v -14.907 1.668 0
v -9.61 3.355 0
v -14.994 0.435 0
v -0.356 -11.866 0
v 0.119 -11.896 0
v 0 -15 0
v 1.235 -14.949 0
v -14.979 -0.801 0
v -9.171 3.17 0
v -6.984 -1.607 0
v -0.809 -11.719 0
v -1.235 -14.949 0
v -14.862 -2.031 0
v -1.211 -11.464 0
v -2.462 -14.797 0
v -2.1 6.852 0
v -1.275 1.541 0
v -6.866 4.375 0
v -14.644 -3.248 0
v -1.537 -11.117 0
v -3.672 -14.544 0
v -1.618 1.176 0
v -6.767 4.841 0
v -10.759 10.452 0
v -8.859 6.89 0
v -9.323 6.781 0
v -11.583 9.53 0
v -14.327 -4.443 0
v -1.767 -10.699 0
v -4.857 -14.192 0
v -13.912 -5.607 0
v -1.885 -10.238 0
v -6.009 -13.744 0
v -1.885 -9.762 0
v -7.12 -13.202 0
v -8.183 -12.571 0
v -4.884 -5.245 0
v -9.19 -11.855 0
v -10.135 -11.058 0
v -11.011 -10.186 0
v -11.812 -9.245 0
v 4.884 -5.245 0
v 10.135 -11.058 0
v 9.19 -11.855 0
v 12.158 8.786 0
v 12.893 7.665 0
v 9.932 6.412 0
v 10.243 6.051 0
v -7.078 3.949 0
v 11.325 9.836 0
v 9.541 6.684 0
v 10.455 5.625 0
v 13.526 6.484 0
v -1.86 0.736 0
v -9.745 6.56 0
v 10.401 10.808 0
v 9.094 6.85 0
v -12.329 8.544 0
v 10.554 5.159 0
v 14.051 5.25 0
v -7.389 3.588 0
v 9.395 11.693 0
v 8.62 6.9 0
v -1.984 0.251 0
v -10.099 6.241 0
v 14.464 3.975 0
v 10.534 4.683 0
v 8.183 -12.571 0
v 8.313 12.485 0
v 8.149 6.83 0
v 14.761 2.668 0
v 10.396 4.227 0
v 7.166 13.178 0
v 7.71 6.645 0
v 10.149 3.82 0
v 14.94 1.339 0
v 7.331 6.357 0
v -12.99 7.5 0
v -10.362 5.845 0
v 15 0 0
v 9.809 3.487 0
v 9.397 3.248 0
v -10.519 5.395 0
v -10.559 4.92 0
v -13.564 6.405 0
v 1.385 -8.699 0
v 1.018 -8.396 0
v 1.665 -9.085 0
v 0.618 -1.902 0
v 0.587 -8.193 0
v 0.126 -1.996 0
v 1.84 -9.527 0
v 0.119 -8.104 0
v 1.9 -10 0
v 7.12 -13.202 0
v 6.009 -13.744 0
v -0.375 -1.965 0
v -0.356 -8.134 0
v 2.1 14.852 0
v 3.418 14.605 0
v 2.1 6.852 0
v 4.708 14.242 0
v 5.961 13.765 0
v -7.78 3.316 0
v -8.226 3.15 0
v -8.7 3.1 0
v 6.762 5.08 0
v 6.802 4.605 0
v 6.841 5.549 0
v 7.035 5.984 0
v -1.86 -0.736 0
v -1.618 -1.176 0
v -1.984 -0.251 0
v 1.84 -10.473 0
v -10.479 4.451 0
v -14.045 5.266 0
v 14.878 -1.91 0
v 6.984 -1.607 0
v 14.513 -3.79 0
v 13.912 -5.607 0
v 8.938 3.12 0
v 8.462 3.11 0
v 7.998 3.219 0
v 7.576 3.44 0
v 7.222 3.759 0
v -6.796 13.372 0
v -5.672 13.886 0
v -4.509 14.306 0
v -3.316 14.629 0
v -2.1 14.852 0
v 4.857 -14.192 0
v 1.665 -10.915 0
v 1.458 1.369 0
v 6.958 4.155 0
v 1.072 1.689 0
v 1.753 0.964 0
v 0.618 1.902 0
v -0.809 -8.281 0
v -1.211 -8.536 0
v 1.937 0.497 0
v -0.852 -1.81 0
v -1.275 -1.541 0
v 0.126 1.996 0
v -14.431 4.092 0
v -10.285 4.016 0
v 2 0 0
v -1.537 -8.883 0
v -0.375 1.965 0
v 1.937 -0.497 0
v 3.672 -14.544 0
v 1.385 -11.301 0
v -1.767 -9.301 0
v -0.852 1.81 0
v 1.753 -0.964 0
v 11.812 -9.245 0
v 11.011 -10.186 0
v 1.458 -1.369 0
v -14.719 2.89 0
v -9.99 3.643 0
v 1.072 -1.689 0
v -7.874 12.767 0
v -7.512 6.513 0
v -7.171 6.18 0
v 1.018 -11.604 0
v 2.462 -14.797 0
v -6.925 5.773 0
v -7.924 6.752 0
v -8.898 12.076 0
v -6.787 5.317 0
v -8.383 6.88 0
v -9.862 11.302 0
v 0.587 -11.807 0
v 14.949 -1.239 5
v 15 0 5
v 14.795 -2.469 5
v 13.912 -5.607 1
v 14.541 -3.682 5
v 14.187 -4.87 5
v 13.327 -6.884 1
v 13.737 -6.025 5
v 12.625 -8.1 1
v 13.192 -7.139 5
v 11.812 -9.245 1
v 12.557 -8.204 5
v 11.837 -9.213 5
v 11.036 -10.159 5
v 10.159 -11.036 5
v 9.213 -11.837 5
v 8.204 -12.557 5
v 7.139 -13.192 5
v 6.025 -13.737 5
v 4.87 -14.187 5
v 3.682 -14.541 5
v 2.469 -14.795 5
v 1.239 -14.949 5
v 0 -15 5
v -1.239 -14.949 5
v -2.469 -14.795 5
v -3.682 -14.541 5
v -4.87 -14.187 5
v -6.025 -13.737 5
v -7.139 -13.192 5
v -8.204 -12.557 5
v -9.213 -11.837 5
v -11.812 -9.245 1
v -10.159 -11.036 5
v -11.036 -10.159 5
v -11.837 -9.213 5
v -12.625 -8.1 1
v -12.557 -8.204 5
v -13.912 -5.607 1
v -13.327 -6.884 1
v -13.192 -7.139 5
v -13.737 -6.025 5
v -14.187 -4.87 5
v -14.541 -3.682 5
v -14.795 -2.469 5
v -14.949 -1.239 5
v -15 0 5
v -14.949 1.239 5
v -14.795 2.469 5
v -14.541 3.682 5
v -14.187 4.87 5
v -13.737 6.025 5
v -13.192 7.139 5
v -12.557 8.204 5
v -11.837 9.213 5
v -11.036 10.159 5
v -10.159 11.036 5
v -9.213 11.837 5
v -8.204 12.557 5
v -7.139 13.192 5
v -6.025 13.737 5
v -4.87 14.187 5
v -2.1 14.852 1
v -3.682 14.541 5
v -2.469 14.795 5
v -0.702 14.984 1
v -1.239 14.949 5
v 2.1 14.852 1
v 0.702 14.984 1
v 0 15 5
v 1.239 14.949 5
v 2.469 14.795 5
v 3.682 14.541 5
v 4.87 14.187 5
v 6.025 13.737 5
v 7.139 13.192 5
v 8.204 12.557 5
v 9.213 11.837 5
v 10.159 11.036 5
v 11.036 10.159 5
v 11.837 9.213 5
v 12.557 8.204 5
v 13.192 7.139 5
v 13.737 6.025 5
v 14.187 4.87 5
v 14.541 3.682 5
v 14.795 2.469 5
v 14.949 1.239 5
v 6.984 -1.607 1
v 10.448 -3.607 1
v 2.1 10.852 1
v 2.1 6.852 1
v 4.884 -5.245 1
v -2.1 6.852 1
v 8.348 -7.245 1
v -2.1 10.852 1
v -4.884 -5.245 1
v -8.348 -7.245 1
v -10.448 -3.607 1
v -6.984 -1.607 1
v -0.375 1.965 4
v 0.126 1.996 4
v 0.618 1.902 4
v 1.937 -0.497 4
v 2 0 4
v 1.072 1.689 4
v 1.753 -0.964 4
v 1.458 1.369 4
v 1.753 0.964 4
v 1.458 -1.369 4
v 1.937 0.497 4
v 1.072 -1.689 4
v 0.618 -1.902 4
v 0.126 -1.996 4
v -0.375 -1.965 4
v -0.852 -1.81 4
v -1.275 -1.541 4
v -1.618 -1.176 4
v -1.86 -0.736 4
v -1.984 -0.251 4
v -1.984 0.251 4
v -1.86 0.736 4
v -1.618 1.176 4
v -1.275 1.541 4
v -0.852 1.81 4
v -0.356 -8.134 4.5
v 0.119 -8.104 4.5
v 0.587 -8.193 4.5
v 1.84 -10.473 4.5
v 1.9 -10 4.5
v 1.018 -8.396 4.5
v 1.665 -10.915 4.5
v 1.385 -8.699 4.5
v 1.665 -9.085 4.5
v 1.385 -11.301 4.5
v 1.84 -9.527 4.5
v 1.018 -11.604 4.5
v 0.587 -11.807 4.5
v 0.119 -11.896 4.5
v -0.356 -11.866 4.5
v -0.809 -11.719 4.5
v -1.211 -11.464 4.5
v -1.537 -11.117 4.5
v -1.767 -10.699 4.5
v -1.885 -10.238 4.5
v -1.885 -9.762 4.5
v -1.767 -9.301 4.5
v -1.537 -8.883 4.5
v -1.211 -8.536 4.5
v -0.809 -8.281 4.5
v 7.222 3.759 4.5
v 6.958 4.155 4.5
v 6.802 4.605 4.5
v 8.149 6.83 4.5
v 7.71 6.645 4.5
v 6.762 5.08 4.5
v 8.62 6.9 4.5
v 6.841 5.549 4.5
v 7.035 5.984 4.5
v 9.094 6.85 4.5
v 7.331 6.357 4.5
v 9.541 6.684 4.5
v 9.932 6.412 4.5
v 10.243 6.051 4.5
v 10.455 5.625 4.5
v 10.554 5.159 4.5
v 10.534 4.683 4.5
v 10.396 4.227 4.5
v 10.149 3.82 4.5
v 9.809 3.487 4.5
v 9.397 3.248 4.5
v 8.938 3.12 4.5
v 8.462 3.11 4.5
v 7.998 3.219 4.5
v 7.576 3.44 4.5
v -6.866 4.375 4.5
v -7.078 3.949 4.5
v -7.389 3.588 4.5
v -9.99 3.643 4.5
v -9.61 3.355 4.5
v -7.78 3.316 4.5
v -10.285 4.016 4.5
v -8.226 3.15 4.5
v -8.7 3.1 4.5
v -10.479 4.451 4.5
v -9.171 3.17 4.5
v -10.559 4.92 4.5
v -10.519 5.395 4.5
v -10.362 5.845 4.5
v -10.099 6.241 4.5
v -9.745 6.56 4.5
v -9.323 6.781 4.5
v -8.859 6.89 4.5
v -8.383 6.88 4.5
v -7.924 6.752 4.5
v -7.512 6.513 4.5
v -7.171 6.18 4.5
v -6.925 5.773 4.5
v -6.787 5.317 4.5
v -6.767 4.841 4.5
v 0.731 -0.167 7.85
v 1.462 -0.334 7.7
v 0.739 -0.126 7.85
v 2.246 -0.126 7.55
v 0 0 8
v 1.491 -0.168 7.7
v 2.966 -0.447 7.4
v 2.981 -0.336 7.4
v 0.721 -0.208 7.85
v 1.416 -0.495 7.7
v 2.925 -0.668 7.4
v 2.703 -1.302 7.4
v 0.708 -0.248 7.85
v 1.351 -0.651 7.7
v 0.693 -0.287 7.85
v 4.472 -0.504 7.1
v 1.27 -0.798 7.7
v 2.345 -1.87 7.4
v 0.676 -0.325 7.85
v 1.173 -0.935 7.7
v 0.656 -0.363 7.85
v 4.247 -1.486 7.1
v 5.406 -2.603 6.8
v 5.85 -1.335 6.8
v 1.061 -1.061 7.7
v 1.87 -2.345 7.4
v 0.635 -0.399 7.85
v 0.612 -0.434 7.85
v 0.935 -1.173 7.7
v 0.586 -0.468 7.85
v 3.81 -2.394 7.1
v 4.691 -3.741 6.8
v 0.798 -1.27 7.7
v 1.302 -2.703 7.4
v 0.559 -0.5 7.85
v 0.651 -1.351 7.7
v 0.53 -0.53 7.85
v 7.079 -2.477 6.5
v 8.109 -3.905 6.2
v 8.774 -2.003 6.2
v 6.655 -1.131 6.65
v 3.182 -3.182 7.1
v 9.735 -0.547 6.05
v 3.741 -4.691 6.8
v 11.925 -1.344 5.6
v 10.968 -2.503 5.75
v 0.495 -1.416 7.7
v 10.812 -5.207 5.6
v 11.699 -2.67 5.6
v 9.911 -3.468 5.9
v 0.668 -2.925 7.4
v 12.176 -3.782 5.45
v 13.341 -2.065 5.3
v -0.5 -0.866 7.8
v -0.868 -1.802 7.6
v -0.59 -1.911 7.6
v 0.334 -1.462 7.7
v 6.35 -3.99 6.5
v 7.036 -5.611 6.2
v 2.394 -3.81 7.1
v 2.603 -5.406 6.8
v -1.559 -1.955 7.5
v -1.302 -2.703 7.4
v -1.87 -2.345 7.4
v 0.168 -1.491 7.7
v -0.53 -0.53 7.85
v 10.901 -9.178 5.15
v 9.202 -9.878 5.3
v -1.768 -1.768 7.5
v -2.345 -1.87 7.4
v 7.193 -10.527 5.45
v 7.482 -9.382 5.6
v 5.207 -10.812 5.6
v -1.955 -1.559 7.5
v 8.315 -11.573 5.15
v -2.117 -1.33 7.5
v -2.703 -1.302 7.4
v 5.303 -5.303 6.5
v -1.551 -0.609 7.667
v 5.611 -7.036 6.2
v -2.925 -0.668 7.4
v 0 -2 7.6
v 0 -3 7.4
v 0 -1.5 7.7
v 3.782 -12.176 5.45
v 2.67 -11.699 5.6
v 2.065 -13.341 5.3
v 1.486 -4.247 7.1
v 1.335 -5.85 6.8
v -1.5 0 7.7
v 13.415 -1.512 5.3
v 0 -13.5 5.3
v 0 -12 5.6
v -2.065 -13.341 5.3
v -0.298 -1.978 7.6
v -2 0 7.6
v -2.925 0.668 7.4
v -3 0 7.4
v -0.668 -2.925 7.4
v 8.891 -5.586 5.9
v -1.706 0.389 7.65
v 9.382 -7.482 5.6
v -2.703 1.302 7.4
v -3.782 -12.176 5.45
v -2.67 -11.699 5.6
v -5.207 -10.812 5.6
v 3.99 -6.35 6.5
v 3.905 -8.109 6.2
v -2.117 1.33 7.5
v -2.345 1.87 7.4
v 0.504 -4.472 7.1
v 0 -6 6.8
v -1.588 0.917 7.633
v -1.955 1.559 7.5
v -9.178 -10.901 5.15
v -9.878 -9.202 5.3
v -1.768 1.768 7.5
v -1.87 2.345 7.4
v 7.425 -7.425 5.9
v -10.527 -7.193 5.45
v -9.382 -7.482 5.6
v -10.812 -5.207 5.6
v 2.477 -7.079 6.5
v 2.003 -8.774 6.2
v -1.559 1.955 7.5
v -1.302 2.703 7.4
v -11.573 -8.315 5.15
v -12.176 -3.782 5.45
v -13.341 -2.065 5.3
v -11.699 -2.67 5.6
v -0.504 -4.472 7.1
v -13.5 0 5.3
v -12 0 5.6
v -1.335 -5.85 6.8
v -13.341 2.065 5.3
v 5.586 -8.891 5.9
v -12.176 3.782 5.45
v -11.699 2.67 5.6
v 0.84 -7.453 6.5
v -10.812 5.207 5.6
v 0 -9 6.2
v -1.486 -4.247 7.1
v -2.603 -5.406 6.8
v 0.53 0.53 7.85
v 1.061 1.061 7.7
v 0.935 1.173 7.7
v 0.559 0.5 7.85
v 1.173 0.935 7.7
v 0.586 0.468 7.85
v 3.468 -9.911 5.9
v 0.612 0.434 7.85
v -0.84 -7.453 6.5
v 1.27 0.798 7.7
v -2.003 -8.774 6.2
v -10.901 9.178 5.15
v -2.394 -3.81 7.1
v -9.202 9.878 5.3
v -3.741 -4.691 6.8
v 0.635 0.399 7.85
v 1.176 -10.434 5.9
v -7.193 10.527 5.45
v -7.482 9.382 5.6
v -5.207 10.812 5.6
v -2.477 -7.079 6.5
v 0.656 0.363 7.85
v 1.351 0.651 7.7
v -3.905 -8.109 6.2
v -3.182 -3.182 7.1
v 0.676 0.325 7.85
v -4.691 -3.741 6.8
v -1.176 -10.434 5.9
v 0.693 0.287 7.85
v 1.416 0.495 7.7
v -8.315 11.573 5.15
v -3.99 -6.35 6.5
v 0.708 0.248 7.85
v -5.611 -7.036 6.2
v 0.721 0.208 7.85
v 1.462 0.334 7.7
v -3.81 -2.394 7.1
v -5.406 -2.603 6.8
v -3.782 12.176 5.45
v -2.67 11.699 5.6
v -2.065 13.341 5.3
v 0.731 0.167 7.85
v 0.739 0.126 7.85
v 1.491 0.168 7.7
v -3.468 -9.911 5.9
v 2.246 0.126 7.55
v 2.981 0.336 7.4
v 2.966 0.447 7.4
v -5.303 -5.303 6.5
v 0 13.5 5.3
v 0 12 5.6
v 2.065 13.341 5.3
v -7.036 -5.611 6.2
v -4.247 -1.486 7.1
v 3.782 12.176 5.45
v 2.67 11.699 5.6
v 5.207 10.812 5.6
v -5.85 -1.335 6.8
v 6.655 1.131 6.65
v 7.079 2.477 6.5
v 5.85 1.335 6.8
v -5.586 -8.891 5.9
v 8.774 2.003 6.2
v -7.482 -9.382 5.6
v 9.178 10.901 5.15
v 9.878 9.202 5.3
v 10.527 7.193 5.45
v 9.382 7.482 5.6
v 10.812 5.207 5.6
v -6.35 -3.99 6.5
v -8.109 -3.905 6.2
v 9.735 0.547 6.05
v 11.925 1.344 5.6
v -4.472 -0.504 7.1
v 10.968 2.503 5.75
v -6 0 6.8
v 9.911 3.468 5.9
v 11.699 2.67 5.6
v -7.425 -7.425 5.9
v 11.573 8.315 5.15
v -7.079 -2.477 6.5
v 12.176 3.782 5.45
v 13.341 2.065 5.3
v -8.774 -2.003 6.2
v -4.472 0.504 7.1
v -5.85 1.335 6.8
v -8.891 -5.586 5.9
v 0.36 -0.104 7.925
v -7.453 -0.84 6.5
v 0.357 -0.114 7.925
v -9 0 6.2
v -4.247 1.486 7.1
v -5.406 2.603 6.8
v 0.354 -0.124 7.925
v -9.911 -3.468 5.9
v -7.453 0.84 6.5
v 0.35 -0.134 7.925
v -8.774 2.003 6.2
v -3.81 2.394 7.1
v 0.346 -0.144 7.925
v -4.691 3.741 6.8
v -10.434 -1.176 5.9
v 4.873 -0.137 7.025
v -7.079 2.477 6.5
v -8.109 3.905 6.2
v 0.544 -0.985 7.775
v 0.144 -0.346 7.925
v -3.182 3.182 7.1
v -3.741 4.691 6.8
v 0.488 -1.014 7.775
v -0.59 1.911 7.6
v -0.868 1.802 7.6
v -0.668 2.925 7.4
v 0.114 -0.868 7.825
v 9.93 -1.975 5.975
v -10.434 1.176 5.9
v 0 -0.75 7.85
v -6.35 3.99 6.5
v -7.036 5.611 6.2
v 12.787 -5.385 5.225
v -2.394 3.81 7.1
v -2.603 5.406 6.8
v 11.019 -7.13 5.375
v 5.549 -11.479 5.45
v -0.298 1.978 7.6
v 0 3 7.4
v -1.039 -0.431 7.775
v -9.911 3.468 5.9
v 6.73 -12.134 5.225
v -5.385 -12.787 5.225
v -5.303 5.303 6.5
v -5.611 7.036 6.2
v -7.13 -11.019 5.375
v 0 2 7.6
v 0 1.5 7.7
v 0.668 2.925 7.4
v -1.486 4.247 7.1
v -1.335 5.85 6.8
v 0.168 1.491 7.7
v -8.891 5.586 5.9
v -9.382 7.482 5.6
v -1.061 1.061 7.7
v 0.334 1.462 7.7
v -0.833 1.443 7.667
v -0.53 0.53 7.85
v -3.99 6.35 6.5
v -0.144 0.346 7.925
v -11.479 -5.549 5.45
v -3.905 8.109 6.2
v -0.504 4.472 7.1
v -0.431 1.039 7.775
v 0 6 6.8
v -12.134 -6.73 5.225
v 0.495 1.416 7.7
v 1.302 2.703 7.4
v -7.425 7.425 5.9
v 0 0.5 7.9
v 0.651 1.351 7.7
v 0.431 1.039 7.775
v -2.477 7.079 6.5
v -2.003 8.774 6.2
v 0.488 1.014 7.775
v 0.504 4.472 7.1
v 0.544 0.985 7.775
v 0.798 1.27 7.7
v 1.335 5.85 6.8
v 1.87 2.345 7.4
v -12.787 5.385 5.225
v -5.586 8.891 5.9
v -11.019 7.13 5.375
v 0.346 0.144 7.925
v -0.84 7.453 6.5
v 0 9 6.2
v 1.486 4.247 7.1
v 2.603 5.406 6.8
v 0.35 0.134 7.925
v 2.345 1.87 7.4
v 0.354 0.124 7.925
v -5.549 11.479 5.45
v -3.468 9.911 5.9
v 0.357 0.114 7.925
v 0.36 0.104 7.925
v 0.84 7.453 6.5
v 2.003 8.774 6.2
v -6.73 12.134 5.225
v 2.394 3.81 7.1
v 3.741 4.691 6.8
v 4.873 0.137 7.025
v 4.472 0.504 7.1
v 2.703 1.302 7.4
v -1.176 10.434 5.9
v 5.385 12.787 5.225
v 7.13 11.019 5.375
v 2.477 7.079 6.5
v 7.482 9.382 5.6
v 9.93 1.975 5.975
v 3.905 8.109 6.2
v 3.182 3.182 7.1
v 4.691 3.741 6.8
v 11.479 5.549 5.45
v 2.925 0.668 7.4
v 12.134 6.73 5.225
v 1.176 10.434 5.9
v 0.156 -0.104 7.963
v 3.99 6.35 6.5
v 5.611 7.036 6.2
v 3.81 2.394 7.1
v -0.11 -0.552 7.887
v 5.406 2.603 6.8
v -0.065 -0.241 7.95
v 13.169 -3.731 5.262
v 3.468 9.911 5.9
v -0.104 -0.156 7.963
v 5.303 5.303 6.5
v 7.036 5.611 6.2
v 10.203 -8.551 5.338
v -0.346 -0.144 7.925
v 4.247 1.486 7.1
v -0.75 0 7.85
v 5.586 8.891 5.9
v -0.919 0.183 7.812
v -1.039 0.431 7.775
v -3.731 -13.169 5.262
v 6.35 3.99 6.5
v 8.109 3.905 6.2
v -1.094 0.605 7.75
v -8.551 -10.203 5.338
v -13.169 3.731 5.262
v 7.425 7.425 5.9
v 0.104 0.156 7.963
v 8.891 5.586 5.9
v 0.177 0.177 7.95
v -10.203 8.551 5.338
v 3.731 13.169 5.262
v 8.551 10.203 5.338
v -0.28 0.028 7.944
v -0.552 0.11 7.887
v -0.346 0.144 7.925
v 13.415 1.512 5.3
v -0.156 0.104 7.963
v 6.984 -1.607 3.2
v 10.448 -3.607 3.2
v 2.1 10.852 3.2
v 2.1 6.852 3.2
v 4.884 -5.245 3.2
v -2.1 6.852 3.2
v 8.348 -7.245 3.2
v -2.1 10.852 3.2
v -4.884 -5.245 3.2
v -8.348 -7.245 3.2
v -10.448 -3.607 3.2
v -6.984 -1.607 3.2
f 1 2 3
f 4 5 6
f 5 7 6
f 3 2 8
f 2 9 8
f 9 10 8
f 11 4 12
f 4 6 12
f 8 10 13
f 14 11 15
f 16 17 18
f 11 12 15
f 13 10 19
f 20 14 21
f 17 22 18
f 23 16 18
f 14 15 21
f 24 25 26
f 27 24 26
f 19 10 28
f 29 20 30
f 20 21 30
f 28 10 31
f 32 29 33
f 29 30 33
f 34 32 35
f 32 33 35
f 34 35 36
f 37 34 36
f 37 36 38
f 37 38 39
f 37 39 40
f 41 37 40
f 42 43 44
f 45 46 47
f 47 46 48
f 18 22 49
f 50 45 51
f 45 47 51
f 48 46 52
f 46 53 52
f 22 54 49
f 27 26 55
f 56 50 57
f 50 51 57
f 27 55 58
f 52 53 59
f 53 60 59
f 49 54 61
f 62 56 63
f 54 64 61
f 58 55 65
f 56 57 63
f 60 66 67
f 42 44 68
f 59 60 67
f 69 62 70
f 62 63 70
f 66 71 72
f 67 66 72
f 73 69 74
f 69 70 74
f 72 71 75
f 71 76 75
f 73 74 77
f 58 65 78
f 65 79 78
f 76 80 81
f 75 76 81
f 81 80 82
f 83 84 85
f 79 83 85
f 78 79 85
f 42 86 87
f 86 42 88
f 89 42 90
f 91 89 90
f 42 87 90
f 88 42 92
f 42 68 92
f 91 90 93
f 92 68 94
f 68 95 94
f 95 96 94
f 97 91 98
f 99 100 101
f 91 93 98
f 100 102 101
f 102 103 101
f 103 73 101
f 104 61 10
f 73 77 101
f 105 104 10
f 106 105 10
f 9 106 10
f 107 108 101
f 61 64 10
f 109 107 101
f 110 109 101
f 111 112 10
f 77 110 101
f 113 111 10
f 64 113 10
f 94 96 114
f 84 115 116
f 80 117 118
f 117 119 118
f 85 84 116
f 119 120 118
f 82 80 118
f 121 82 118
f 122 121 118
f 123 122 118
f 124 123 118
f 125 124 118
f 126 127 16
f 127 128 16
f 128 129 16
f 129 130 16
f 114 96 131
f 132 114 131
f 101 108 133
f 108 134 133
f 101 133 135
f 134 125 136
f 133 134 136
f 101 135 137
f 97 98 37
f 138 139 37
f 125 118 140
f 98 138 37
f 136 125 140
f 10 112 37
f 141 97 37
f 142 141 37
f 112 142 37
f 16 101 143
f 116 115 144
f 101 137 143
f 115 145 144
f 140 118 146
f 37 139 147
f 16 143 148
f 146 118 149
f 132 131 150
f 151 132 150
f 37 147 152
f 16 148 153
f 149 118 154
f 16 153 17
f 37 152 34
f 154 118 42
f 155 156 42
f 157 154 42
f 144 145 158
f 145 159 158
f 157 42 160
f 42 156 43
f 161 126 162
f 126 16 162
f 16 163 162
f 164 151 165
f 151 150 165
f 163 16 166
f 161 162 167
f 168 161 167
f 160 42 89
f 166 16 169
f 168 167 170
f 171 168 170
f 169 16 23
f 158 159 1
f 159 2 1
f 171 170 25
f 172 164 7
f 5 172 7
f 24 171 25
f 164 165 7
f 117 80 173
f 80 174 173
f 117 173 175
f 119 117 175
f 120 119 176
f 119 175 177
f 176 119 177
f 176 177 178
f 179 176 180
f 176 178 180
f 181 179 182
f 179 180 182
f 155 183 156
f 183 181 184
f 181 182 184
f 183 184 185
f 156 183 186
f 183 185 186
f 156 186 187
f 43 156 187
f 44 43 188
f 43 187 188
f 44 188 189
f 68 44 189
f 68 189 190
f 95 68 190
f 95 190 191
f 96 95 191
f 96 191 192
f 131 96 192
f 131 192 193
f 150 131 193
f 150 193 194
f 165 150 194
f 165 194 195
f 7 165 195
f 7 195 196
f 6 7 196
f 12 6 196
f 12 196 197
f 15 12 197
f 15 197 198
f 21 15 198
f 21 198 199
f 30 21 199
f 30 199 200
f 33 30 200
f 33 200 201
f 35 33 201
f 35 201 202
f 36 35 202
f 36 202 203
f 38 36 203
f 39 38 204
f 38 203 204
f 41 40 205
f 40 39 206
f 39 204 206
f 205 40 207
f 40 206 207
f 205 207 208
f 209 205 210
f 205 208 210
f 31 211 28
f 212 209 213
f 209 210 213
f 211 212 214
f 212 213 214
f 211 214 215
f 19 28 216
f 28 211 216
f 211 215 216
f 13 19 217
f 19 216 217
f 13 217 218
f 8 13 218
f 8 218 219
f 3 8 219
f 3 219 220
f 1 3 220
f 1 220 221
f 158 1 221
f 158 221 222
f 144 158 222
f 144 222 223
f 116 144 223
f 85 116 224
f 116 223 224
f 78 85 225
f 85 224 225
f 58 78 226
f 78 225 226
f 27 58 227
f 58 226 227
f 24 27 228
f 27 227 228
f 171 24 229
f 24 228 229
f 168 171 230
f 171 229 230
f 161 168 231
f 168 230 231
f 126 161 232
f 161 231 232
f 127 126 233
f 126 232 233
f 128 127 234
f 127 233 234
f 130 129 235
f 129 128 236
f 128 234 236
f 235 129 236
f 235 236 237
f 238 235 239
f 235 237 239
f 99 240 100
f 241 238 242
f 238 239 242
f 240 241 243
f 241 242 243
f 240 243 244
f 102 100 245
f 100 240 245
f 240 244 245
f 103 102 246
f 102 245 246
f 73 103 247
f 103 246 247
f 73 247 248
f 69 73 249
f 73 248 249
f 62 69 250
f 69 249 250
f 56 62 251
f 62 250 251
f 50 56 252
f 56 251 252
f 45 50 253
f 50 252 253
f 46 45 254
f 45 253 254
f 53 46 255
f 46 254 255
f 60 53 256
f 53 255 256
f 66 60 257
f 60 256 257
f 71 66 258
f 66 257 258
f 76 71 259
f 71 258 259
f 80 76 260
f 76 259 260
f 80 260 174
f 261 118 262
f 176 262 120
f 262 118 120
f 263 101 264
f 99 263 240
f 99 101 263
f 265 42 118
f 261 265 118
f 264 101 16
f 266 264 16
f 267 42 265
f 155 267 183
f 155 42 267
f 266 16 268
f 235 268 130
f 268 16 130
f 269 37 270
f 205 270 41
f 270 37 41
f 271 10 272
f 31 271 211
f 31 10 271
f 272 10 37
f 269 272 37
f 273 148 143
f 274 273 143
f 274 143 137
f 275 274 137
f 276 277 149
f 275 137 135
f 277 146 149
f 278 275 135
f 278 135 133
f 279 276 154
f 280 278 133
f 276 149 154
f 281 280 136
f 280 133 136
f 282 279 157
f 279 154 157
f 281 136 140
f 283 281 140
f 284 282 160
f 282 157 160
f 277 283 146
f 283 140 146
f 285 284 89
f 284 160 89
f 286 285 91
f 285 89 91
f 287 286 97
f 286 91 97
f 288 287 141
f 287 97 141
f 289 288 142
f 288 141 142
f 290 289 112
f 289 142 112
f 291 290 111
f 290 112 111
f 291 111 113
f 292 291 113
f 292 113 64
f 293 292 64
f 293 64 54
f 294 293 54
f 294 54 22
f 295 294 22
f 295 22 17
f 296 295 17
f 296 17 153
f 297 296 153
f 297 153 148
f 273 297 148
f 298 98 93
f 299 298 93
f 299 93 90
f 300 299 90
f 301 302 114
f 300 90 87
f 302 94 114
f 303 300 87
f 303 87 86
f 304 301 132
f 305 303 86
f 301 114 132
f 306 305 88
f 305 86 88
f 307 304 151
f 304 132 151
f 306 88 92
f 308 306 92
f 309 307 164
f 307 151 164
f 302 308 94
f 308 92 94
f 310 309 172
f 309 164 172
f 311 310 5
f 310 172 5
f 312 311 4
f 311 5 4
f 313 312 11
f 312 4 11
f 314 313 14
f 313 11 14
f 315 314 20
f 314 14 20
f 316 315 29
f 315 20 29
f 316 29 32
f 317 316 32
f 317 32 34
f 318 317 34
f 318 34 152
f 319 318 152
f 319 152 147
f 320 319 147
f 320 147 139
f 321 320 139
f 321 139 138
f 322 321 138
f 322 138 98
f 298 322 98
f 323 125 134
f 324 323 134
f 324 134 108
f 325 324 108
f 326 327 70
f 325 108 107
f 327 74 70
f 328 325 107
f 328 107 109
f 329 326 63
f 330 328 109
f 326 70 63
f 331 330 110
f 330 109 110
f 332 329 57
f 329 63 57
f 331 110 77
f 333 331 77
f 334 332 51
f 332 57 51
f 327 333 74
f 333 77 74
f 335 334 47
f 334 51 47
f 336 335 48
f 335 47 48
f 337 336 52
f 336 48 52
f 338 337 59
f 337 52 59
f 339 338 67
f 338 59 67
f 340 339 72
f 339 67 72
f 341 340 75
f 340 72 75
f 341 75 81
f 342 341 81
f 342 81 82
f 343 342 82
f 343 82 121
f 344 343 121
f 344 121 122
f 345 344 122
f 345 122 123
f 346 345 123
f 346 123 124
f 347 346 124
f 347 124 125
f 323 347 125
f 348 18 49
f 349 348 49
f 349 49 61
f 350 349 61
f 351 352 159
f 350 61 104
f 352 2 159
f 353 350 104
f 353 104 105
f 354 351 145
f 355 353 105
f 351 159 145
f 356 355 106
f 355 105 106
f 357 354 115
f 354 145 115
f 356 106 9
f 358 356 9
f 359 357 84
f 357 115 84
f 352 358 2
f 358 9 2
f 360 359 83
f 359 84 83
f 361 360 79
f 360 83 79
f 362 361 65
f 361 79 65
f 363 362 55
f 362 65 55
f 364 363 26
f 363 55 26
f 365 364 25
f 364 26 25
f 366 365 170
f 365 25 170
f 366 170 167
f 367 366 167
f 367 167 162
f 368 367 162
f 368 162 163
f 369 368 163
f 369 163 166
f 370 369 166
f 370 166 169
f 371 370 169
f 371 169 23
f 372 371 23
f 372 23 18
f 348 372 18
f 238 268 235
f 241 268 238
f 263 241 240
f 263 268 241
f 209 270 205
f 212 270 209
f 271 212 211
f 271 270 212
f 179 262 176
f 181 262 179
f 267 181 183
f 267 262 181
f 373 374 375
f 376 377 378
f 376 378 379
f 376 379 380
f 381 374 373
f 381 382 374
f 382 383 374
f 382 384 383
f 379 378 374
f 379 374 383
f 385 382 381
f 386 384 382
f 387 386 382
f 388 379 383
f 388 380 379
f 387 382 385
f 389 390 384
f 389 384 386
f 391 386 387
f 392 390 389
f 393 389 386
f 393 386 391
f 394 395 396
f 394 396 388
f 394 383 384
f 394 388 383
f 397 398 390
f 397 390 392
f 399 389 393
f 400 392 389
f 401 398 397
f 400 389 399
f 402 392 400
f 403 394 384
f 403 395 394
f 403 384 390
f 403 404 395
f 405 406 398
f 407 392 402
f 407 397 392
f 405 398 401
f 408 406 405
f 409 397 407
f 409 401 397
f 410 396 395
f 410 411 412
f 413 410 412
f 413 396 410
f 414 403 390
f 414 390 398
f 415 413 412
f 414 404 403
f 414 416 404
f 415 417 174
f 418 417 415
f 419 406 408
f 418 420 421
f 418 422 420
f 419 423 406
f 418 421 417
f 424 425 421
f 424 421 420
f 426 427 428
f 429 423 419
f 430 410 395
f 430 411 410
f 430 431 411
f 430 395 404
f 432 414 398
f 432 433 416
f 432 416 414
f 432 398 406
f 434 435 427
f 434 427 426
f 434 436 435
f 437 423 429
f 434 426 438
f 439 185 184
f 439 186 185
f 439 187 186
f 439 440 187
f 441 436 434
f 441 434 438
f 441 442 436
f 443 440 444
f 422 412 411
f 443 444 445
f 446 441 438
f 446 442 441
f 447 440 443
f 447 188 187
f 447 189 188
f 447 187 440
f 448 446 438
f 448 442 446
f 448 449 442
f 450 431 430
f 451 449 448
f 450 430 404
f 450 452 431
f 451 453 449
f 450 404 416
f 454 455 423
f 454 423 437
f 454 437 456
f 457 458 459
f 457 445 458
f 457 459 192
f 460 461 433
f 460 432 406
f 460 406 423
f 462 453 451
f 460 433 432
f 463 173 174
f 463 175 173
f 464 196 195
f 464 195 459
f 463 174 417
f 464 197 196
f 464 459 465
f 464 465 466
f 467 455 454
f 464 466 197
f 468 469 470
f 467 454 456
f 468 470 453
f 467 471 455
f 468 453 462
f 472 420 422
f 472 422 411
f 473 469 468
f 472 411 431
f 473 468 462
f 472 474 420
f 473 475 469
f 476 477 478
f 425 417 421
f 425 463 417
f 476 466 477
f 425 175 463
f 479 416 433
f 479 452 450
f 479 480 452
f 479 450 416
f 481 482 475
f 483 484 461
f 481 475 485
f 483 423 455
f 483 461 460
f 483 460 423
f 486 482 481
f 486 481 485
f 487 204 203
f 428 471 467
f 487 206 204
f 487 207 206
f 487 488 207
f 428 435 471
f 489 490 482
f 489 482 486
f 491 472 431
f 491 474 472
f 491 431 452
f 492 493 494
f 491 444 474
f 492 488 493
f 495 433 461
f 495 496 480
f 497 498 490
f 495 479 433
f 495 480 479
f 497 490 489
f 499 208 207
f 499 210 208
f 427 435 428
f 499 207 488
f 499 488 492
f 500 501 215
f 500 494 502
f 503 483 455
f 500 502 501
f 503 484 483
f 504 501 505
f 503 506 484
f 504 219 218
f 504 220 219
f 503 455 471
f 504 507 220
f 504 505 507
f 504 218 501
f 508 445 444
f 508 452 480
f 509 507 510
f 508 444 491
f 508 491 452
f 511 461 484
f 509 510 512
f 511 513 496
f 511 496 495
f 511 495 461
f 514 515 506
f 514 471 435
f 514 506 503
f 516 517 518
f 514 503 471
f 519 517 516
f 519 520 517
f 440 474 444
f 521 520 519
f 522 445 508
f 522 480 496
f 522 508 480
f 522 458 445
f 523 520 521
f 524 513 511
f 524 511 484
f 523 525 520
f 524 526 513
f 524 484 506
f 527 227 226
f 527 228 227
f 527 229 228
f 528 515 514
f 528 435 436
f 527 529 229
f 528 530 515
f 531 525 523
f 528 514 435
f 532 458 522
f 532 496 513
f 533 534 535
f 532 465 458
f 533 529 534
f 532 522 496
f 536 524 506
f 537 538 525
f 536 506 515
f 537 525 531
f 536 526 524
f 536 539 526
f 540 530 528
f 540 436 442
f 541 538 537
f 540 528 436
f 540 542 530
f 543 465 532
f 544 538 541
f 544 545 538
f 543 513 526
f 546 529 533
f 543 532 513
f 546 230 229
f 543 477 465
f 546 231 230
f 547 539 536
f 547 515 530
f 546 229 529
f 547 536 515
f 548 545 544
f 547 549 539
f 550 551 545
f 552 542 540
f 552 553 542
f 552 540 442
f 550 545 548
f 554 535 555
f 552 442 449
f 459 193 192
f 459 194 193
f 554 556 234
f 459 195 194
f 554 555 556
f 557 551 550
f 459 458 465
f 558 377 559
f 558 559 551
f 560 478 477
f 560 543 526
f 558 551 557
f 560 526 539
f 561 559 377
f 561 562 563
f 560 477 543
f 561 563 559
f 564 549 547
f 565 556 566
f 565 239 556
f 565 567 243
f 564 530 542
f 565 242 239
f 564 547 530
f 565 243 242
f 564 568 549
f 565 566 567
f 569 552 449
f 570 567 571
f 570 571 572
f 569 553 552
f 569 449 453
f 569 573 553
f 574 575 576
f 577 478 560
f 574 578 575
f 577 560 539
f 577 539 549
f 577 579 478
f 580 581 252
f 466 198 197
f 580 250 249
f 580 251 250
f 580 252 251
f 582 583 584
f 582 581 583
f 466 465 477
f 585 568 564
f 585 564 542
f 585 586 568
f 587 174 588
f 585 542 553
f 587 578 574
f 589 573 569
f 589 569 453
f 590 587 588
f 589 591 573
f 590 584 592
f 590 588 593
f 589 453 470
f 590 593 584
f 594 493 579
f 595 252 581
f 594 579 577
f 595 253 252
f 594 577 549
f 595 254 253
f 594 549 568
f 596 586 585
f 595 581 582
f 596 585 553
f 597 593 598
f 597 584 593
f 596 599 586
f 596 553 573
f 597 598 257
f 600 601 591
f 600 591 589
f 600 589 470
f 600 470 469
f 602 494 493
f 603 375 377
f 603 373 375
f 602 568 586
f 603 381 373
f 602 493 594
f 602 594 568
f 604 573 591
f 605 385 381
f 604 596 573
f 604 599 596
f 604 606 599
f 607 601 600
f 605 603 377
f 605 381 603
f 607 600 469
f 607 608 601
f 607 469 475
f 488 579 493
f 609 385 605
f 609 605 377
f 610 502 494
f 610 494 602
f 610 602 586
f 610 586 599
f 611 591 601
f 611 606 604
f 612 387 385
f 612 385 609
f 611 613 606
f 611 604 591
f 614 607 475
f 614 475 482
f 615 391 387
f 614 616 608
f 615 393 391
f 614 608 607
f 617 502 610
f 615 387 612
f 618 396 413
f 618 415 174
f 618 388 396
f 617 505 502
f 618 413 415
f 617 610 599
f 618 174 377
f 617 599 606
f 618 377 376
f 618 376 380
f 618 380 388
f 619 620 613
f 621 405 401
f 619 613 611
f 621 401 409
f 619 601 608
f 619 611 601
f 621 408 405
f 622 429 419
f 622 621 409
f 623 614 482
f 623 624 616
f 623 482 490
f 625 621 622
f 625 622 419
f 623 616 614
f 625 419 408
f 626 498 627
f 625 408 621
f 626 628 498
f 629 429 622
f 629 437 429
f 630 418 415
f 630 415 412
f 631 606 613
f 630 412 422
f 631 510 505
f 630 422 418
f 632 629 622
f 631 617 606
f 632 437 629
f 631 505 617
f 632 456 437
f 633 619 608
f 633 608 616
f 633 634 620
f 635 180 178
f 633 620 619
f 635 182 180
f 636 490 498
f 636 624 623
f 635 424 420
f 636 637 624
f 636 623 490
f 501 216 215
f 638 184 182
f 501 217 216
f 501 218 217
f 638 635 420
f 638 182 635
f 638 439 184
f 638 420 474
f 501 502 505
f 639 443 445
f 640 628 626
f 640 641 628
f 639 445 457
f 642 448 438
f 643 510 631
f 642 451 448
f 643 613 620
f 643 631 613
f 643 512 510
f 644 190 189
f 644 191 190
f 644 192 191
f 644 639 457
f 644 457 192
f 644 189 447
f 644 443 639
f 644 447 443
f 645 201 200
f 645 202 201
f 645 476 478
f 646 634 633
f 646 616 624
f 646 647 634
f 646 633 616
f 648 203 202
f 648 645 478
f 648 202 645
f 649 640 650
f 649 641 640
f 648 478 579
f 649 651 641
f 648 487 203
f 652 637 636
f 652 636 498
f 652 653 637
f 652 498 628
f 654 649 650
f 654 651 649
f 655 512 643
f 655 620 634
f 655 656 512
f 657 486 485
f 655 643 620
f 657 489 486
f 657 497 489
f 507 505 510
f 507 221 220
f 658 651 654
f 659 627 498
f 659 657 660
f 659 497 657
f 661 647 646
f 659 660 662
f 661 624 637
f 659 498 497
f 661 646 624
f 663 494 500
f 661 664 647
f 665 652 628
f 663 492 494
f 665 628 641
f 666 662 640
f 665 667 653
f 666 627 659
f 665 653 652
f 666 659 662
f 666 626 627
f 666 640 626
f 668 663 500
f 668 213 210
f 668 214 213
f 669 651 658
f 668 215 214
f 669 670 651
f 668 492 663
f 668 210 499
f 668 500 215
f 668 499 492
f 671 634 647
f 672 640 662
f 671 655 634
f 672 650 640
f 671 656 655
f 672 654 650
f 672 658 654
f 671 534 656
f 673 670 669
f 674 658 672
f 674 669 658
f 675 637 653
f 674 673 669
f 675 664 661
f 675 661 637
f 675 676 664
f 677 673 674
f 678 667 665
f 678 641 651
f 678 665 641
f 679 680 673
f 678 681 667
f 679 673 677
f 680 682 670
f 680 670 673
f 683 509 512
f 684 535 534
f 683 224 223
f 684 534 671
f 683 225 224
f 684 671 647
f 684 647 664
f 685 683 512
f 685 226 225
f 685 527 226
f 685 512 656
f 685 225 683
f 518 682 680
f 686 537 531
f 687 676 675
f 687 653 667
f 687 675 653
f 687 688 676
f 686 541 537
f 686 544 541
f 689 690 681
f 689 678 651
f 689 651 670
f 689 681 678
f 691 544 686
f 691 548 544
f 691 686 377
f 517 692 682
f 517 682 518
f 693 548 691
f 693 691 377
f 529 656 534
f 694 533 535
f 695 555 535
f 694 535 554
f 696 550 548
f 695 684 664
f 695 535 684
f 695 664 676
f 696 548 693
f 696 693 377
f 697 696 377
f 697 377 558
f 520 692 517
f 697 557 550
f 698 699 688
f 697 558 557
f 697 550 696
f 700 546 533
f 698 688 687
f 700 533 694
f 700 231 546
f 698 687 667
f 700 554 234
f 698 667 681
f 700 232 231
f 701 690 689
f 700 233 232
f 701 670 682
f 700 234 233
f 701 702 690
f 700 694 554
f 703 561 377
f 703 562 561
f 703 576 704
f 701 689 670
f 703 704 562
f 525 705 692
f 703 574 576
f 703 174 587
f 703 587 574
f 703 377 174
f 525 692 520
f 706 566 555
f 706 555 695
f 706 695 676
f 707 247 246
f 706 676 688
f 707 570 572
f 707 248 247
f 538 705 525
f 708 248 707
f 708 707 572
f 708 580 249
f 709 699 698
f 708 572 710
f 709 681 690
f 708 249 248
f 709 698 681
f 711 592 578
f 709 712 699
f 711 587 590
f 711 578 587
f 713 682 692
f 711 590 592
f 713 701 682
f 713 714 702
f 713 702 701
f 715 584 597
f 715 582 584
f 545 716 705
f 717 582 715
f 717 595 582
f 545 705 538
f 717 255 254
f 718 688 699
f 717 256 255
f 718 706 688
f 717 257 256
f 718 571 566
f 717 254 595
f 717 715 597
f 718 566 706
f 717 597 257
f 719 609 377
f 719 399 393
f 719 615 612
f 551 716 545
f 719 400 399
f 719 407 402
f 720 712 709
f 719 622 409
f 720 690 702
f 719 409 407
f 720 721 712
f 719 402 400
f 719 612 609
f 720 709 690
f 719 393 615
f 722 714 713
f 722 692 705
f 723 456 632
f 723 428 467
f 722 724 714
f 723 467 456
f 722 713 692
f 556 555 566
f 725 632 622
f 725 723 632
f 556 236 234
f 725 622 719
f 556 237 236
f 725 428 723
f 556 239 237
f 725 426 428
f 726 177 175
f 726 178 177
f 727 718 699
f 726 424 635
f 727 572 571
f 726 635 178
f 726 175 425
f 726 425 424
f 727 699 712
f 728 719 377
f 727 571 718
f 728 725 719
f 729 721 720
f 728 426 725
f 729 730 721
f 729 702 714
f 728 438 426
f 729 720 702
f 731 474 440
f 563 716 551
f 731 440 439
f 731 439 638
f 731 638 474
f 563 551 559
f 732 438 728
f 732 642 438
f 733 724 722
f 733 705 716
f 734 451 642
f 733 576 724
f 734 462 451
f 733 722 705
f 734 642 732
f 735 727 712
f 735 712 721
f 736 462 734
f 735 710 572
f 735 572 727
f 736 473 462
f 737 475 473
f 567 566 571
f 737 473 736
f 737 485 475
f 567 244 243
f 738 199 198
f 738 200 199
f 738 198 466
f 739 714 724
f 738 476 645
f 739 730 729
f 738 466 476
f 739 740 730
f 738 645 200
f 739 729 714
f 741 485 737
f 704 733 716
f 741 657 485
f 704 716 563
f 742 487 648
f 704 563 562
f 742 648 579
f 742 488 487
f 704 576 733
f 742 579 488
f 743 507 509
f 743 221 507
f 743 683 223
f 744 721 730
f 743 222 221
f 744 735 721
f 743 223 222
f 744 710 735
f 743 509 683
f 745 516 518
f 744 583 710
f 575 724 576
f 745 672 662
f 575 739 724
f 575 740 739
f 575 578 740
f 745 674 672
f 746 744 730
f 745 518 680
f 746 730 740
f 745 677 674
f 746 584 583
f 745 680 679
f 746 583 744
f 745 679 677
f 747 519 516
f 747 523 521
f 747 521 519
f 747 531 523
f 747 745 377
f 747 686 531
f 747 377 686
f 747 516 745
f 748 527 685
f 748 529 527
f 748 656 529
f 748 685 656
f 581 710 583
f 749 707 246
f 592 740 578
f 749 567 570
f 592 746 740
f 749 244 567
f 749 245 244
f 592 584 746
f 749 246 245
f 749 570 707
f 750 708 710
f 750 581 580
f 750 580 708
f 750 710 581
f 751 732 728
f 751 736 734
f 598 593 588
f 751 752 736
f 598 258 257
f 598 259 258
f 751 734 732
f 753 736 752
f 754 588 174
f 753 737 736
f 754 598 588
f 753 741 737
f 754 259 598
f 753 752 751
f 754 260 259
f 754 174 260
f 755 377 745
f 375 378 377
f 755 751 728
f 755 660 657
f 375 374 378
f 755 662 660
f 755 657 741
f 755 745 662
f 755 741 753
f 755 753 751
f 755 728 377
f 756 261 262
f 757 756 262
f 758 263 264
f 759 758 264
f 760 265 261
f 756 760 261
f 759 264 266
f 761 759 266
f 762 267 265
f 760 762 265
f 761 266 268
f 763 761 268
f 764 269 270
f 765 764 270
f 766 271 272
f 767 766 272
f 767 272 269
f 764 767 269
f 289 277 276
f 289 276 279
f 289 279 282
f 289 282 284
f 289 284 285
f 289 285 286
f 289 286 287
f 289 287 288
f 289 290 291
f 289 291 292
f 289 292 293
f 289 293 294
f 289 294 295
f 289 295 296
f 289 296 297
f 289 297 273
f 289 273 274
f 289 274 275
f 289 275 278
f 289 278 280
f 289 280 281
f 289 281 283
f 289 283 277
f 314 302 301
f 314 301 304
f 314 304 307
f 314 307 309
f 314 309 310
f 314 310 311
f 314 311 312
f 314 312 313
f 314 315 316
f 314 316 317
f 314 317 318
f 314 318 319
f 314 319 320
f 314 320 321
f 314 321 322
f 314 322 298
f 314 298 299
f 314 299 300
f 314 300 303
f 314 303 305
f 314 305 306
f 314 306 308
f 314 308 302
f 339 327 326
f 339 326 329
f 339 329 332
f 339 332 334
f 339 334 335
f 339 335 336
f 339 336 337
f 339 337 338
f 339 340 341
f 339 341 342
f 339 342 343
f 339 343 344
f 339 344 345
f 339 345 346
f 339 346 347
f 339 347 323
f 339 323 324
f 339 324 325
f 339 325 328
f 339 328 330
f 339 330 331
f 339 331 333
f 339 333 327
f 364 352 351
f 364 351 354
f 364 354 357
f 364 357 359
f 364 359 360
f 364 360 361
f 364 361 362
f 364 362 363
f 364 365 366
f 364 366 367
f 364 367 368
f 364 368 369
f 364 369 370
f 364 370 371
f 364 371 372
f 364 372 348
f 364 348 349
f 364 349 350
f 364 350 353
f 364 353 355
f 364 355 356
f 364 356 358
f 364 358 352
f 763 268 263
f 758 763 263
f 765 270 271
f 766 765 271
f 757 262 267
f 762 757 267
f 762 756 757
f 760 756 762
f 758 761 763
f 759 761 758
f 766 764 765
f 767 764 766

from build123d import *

# Parameters (mm, degrees)
SKETCH001_R           = 1.9
POCKET_DEPTH          = 4.5
POLARPATTERN_COUNT    = 3
POCKET001_DEPTH       = 1
POCKET002_DEPTH       = 2.2
POLARPATTERN001_COUNT = 3
SKETCH004_R           = 2
POCKET003_DEPTH       = 4


with BuildPart() as part:
    # Sketch → Revolution (revolve)
    with BuildSketch(Plane.XZ):
        Polygon((0, 0), (15, 0), (15, 5), (0, 8), align=None)
    revolve(axis=Axis((0, 0, 0), (0, 0, 1)))

    # Sketch001 → Pocket (cut)
    with BuildSketch(Plane(origin=(0, 0, 0), x_dir=(1, 0, 0), z_dir=(0, 0, -1))):
        with Locations((0, 10)):
            Circle(SKETCH001_R)
    pocket = extrude(amount=-POCKET_DEPTH, mode=Mode.SUBTRACT)

    # PolarPattern: Pocket ×3 about axis
    polarpattern_axis = Axis((0, 0, 0), (0, 0, -1))
    for i in range(1, POLARPATTERN_COUNT):
        add(pocket.rotate(polarpattern_axis, i * 360 / POLARPATTERN_COUNT), mode=Mode.SUBTRACT)

    # Sketch002 → Pocket001 (cut)
    with BuildSketch(Plane(origin=(0, 0, 0), x_dir=(1, 0, 0), z_dir=(0, 0, -1))):
        with BuildLine():
            Line((4.884242, 5.24479), (6.984242, 1.607483))
            Line((6.984242, 1.607483), (13.912445, 5.607483))
            ThreePointArc((13.912445, 5.607483), (12.990381, 7.5), (11.812445, 9.24479))
            Line((4.884242, 5.24479), (11.812445, 9.24479))
        make_face()
    pocket001 = extrude(amount=-POCKET001_DEPTH, mode=Mode.SUBTRACT)

    # Sketch003 → Pocket002 (cut)
    with BuildSketch(Plane(origin=(0, 0, 1), x_dir=(1, 0, 0), z_dir=(0, 0, -1))):
        Polygon((4.884242, 5.24479), (6.984242, 1.607483), (10.448344, 3.607483), (8.34834, 7.244788), align=None)
    pocket002 = extrude(amount=-POCKET002_DEPTH, mode=Mode.SUBTRACT)

    # PolarPattern001: Pocket002, Pocket001 ×3 about axis
    polarpattern001_axis = Axis((0, 0, 1), (0, 0, -1))
    for i in range(1, POLARPATTERN001_COUNT):
        add(pocket002.rotate(polarpattern001_axis, i * 360 / POLARPATTERN001_COUNT), mode=Mode.SUBTRACT)
        add(pocket001.rotate(polarpattern001_axis, i * 360 / POLARPATTERN001_COUNT), mode=Mode.SUBTRACT)

    # Sketch004 → Pocket003 (cut)
    with BuildSketch(Plane(origin=(0, 0, 0), x_dir=(1, 0, 0), z_dir=(0, 0, -1))):
        Circle(SKETCH004_R)
    extrude(amount=-POCKET003_DEPTH, mode=Mode.SUBTRACT)


solid = part.part
